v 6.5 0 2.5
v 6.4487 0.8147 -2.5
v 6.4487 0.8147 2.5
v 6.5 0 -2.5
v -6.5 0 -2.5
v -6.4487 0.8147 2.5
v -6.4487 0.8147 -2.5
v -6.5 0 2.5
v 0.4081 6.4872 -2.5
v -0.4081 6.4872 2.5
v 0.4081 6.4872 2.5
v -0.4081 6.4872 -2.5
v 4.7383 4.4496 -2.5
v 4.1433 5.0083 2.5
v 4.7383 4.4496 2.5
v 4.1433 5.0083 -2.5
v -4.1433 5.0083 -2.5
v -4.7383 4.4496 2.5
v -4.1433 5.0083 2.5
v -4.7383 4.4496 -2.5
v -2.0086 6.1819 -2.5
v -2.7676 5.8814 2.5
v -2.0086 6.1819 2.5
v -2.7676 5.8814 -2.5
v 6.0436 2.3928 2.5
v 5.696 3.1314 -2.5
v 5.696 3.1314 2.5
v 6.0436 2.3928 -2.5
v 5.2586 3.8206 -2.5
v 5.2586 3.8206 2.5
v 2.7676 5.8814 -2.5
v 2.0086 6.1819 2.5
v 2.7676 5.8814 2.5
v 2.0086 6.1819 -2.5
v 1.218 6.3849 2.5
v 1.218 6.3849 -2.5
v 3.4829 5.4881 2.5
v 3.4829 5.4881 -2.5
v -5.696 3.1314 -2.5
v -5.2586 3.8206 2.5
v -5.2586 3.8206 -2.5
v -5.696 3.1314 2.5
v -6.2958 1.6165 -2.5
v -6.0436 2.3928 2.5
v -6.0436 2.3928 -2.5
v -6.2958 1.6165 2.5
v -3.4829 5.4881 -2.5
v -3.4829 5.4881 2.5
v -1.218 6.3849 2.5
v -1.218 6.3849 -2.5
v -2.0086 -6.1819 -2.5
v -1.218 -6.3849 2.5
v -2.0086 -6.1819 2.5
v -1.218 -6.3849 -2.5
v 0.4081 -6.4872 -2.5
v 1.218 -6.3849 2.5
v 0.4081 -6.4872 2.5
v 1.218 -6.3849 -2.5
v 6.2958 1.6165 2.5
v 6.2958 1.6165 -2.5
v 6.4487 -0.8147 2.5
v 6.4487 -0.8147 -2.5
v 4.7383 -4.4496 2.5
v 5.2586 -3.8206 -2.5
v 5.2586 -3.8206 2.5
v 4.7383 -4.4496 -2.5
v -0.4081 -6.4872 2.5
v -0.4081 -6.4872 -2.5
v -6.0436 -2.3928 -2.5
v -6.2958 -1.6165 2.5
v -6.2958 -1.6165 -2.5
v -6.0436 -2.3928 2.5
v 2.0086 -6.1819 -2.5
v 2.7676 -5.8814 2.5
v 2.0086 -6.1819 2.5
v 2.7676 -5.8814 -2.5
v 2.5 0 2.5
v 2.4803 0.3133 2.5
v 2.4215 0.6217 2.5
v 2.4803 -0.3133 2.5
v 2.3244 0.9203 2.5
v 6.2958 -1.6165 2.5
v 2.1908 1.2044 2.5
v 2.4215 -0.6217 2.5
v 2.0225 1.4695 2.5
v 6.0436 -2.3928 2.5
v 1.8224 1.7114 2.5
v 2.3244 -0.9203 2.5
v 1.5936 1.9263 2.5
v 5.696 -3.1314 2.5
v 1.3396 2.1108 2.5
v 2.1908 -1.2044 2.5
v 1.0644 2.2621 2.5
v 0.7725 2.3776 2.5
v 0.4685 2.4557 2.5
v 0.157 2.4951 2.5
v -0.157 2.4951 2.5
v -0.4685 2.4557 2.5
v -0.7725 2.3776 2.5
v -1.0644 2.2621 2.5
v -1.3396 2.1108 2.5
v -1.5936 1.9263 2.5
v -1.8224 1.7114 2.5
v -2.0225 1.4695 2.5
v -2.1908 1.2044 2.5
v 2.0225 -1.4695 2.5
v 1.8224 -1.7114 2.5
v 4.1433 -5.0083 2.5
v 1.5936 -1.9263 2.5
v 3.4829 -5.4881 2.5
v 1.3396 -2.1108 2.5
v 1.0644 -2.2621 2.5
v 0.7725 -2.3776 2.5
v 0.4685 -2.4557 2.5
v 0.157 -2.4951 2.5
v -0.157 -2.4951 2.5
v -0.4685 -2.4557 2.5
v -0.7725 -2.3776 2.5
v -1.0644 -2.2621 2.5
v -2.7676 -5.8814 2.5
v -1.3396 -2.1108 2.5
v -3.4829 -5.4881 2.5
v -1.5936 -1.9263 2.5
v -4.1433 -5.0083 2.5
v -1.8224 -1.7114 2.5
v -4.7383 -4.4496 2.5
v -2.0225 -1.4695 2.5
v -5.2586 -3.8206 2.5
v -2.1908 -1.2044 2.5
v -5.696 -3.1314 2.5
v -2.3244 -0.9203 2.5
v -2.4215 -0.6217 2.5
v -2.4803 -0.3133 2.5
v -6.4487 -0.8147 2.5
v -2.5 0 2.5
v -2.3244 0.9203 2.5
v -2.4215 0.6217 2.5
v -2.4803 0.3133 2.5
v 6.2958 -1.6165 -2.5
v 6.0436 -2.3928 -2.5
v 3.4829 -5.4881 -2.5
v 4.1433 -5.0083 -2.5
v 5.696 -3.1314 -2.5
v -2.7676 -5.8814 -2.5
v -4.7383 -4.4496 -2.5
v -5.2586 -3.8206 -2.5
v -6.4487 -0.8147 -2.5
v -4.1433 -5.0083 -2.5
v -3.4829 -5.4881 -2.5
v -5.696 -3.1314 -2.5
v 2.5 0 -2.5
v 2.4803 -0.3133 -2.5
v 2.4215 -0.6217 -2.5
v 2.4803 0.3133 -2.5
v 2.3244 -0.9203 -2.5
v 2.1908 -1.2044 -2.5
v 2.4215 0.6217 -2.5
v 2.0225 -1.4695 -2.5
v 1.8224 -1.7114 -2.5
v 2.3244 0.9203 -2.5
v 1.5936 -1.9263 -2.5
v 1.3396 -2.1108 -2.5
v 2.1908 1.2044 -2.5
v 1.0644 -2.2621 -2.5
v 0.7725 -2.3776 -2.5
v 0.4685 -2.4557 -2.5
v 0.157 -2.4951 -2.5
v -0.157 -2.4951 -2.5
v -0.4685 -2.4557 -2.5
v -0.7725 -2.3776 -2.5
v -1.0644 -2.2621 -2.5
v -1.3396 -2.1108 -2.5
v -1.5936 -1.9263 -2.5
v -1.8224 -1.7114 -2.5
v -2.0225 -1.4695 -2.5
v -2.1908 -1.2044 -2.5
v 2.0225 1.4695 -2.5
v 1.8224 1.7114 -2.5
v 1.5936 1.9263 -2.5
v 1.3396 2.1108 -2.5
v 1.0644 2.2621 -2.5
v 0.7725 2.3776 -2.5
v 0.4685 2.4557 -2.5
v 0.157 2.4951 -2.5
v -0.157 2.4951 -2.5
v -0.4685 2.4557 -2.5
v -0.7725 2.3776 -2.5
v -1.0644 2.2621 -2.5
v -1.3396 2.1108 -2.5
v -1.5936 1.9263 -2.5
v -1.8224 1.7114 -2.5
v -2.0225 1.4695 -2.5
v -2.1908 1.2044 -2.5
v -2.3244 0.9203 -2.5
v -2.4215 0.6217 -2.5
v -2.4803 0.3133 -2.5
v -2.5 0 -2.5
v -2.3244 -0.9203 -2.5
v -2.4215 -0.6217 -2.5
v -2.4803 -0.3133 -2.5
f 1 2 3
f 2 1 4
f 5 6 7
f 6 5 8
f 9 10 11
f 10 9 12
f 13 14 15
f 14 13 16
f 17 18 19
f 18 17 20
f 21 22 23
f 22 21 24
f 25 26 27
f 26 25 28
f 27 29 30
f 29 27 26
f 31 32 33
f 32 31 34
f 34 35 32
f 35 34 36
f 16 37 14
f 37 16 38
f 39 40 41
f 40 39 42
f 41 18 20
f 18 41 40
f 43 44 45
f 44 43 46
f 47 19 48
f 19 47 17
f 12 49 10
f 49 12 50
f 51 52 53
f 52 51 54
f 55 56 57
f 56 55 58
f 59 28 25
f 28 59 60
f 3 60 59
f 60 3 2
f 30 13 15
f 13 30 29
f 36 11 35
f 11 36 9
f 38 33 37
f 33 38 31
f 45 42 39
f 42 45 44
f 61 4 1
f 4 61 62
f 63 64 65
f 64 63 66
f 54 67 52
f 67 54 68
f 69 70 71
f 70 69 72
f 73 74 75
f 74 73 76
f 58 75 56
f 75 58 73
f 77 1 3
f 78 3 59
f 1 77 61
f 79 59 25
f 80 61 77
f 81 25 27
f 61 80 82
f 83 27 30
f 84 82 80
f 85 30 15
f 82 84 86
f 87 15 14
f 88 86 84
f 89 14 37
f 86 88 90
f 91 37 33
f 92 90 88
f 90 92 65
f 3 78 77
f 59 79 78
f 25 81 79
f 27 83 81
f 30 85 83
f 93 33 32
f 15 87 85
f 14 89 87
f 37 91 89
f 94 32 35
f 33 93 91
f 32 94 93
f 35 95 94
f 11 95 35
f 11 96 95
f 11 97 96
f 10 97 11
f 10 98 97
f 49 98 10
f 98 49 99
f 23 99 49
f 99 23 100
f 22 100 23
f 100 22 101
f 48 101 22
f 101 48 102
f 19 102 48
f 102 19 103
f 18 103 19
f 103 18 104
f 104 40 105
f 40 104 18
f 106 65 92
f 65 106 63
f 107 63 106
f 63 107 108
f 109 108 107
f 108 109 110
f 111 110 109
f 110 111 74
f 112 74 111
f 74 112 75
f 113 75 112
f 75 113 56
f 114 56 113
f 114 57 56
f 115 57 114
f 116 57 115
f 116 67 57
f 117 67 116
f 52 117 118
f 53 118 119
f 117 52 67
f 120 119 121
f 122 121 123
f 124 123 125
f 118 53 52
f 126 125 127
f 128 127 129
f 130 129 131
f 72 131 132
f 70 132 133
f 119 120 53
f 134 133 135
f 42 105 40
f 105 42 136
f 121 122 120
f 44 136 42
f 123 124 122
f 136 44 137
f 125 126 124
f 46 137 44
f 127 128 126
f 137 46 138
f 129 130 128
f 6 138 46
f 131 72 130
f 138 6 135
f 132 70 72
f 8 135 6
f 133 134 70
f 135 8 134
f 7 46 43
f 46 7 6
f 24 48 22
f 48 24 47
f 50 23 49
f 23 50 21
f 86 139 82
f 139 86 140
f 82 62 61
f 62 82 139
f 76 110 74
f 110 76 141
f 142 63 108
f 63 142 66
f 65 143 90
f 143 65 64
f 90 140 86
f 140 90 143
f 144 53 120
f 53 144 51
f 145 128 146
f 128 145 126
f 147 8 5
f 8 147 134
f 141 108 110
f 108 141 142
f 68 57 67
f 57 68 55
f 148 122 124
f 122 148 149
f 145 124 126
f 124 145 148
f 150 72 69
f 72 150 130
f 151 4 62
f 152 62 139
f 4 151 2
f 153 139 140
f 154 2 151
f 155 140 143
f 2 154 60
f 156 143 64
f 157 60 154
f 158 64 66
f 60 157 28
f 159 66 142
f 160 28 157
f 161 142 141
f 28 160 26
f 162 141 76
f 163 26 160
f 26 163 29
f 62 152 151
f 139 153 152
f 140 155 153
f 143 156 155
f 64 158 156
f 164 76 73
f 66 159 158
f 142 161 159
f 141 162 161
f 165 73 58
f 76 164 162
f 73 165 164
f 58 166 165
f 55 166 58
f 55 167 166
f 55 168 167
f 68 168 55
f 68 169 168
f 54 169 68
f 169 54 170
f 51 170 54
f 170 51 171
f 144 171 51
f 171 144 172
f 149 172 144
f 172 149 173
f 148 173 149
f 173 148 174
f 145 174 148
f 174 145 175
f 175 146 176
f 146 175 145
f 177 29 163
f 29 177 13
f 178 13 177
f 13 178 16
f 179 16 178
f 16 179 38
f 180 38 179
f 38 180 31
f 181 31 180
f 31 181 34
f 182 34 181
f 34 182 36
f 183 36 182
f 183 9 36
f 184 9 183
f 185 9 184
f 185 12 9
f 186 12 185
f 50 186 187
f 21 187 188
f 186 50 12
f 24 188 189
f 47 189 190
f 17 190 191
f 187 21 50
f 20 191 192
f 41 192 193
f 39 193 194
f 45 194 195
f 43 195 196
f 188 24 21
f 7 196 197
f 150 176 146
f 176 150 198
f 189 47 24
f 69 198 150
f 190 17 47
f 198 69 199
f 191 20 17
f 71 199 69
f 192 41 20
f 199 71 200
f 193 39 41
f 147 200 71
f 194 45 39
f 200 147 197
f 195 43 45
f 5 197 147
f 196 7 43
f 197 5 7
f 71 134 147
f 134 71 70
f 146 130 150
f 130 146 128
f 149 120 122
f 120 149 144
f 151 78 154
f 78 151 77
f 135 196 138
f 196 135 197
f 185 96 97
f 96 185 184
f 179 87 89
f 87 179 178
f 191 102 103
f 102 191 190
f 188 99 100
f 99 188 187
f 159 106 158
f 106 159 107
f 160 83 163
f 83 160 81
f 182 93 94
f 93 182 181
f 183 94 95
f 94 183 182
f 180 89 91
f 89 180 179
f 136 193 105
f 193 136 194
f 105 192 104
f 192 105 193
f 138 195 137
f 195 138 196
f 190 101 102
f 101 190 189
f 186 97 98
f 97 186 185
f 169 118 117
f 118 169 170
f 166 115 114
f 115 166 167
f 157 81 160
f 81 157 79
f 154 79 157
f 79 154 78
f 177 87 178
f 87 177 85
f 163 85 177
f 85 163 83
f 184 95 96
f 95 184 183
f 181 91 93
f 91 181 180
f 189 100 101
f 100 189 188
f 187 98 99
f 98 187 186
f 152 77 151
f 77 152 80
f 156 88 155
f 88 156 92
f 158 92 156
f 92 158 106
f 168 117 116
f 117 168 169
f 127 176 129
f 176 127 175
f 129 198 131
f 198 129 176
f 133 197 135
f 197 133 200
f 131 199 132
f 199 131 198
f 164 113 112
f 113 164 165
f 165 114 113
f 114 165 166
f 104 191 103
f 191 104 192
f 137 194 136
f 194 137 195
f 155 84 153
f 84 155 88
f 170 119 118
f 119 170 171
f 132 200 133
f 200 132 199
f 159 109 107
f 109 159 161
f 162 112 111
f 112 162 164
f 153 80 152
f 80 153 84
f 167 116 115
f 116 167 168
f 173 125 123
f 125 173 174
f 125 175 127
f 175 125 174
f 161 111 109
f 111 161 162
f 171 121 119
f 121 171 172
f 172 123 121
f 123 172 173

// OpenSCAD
$fn = 50;


difference() {
	union() {
		translate(v = [0, 0, -2.5000000000]) {
			cylinder(h = 5, r = 6.5000000000);
		}
	}
	union() {
		translate(v = [0, 0, -100.0000000000]) {
			cylinder(h = 200, r = 2.5000000000);
		}
	}
}
